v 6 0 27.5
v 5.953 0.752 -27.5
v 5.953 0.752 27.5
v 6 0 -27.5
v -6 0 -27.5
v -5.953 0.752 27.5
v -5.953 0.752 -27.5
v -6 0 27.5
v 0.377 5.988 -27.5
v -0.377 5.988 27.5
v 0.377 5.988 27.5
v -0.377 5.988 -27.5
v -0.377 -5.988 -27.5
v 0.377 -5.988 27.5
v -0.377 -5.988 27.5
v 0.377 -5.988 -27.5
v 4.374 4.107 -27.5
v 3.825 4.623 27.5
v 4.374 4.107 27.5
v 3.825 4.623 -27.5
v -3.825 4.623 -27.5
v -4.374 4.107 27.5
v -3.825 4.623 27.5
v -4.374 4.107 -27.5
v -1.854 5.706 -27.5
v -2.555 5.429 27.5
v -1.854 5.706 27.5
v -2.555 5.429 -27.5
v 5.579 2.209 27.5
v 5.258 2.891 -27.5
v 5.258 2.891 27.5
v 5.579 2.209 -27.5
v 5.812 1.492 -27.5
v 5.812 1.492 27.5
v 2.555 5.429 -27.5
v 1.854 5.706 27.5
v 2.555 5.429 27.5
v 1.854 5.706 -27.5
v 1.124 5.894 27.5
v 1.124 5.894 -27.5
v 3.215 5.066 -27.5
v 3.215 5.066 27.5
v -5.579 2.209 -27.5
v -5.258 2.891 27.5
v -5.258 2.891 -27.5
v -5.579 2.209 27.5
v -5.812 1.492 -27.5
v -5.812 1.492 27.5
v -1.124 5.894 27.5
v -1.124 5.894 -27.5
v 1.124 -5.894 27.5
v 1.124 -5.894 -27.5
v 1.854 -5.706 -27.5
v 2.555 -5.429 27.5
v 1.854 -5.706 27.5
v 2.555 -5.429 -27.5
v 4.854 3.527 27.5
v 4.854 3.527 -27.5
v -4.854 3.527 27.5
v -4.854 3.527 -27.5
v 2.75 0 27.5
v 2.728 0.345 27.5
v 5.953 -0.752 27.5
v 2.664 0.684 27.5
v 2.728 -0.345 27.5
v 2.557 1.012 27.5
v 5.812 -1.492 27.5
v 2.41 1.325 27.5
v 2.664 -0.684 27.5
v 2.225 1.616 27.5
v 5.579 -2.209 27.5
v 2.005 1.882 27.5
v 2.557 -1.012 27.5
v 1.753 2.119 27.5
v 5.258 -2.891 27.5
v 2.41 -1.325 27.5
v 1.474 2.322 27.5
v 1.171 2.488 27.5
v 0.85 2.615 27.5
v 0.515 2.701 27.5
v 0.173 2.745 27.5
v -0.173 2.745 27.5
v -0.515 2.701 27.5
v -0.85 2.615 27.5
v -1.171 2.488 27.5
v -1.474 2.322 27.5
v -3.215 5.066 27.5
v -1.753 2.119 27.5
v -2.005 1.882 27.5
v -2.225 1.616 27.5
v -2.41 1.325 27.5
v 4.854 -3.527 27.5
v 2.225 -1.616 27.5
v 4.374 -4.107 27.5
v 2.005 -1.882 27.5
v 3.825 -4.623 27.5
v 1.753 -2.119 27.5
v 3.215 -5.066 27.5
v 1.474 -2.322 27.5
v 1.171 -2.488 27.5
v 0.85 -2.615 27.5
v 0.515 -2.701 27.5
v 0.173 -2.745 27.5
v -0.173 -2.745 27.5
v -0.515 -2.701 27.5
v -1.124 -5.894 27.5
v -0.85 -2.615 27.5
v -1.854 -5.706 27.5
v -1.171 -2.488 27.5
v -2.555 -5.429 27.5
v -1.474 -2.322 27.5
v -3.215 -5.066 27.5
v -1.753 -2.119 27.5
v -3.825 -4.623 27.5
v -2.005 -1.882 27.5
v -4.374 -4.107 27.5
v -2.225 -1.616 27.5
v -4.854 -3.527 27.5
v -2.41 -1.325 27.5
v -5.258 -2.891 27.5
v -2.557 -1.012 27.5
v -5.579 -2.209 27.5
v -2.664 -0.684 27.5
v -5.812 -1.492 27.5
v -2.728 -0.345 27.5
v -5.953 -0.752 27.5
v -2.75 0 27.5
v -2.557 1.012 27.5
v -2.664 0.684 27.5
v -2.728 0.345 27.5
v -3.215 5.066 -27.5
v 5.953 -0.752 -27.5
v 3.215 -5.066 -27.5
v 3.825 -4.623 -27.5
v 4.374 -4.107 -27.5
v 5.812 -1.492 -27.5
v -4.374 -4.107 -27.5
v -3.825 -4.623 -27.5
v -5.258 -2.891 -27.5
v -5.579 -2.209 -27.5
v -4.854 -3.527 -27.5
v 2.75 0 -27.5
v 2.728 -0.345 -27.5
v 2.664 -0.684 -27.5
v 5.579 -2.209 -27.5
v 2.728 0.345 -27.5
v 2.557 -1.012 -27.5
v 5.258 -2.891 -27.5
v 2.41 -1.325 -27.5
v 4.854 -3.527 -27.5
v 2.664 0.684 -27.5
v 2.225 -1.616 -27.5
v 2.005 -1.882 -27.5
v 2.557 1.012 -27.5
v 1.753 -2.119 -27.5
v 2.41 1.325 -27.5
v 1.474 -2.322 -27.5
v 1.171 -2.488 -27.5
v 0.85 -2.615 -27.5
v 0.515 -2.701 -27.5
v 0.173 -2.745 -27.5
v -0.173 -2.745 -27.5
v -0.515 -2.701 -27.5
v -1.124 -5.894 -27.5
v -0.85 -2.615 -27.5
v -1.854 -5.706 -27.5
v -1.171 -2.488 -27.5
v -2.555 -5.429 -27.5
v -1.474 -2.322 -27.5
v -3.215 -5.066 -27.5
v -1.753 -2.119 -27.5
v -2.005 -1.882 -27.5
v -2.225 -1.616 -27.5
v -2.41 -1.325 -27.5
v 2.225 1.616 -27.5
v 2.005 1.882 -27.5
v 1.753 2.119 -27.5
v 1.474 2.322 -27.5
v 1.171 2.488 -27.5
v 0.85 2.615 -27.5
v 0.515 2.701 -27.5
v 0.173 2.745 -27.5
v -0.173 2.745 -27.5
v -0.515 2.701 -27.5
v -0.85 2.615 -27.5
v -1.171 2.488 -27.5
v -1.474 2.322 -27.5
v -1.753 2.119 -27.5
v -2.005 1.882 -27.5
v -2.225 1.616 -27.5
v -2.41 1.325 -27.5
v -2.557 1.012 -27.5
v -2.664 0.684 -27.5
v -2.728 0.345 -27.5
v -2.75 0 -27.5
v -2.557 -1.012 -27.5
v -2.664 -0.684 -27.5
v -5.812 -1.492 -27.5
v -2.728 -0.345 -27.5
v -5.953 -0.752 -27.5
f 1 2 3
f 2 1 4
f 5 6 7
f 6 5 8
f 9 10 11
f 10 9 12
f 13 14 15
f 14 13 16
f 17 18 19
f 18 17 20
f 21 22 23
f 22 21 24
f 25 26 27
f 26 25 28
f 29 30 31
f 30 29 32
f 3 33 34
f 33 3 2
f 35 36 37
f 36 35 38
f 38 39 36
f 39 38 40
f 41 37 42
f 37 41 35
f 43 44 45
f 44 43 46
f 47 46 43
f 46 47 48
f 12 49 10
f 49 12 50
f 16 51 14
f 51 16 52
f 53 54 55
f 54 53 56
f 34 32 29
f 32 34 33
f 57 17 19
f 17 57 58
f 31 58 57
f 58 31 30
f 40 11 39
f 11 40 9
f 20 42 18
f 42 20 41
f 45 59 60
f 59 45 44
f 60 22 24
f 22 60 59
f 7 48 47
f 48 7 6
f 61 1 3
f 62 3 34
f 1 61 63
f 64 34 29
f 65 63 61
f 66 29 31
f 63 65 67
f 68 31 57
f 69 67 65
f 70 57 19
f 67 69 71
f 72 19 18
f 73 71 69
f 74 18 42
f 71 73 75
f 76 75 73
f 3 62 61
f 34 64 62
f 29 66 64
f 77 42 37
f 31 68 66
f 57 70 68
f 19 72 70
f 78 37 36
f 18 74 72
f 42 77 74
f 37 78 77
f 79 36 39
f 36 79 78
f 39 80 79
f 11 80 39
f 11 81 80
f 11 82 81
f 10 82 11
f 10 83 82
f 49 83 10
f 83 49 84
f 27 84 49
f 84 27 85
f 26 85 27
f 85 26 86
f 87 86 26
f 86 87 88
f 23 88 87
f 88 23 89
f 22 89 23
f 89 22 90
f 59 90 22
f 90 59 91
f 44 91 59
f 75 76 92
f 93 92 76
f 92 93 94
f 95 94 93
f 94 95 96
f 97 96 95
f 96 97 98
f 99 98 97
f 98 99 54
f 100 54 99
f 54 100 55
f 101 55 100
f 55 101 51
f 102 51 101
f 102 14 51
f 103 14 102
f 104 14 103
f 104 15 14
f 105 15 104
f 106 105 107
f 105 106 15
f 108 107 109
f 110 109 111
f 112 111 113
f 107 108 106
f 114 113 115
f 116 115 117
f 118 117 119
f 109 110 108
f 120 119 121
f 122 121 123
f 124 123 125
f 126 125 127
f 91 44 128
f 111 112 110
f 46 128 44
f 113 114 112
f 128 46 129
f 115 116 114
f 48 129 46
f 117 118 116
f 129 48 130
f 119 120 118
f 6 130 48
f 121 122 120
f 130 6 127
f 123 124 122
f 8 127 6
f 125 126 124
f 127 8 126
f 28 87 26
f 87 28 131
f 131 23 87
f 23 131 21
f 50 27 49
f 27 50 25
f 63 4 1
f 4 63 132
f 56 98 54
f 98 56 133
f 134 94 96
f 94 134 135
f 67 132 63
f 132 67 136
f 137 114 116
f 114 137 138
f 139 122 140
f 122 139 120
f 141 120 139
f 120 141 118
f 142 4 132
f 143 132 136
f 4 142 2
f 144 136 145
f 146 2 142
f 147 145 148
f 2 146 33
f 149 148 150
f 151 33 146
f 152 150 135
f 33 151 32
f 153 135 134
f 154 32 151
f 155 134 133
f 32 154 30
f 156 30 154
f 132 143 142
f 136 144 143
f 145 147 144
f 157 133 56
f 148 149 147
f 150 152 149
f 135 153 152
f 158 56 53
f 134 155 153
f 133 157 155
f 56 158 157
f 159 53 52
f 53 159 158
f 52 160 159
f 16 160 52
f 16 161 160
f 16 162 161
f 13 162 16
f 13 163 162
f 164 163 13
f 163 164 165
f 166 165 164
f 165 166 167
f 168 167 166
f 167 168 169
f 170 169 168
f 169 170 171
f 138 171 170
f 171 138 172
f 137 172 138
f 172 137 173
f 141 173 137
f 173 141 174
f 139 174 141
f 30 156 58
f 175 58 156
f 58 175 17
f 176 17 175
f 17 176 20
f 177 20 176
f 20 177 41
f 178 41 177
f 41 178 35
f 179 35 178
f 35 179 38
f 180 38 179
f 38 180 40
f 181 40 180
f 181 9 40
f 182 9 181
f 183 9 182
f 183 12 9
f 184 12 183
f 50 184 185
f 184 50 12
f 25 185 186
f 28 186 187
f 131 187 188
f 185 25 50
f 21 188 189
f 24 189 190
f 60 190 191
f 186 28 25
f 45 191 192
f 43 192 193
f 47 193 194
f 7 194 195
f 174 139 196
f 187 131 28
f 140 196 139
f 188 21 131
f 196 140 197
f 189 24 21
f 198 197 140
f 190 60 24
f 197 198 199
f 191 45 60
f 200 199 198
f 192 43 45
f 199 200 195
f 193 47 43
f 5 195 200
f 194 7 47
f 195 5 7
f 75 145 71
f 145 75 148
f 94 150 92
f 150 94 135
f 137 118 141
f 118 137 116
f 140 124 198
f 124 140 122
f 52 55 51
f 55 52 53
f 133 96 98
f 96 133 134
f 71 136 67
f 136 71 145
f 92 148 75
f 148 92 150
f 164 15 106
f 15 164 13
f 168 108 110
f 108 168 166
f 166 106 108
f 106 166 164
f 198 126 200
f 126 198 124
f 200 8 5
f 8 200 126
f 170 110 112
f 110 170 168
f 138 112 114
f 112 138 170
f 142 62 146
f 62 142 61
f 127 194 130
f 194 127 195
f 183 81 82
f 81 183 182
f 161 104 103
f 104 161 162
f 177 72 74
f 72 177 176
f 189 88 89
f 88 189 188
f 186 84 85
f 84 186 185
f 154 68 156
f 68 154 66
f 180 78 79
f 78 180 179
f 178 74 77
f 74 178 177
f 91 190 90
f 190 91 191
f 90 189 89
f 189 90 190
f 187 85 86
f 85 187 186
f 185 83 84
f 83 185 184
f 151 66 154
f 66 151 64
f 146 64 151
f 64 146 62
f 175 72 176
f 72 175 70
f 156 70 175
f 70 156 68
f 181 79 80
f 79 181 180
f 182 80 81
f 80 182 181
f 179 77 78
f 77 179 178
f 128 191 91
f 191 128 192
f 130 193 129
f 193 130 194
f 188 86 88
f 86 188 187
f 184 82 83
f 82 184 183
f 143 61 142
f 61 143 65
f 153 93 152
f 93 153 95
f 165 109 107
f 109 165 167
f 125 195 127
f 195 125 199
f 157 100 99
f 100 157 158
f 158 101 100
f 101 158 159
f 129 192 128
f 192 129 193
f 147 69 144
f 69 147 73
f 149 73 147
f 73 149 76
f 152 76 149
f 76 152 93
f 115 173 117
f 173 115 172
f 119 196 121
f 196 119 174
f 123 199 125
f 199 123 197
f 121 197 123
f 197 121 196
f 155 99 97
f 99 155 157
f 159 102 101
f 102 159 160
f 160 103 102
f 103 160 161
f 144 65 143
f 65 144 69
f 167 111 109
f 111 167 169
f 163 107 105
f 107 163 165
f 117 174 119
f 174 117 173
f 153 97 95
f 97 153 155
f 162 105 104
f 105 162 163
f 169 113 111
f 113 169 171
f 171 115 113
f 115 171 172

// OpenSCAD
$fn = 50;


difference() {
	union() {
		translate(v = [0, 0, -27.5000000000]) {
			cylinder(h = 55, r = 6.0000000000);
		}
	}
	union() {
		translate(v = [0, 0, -100.0000000000]) {
			cylinder(h = 200, r = 2.7500000000);
		}
	}
}
